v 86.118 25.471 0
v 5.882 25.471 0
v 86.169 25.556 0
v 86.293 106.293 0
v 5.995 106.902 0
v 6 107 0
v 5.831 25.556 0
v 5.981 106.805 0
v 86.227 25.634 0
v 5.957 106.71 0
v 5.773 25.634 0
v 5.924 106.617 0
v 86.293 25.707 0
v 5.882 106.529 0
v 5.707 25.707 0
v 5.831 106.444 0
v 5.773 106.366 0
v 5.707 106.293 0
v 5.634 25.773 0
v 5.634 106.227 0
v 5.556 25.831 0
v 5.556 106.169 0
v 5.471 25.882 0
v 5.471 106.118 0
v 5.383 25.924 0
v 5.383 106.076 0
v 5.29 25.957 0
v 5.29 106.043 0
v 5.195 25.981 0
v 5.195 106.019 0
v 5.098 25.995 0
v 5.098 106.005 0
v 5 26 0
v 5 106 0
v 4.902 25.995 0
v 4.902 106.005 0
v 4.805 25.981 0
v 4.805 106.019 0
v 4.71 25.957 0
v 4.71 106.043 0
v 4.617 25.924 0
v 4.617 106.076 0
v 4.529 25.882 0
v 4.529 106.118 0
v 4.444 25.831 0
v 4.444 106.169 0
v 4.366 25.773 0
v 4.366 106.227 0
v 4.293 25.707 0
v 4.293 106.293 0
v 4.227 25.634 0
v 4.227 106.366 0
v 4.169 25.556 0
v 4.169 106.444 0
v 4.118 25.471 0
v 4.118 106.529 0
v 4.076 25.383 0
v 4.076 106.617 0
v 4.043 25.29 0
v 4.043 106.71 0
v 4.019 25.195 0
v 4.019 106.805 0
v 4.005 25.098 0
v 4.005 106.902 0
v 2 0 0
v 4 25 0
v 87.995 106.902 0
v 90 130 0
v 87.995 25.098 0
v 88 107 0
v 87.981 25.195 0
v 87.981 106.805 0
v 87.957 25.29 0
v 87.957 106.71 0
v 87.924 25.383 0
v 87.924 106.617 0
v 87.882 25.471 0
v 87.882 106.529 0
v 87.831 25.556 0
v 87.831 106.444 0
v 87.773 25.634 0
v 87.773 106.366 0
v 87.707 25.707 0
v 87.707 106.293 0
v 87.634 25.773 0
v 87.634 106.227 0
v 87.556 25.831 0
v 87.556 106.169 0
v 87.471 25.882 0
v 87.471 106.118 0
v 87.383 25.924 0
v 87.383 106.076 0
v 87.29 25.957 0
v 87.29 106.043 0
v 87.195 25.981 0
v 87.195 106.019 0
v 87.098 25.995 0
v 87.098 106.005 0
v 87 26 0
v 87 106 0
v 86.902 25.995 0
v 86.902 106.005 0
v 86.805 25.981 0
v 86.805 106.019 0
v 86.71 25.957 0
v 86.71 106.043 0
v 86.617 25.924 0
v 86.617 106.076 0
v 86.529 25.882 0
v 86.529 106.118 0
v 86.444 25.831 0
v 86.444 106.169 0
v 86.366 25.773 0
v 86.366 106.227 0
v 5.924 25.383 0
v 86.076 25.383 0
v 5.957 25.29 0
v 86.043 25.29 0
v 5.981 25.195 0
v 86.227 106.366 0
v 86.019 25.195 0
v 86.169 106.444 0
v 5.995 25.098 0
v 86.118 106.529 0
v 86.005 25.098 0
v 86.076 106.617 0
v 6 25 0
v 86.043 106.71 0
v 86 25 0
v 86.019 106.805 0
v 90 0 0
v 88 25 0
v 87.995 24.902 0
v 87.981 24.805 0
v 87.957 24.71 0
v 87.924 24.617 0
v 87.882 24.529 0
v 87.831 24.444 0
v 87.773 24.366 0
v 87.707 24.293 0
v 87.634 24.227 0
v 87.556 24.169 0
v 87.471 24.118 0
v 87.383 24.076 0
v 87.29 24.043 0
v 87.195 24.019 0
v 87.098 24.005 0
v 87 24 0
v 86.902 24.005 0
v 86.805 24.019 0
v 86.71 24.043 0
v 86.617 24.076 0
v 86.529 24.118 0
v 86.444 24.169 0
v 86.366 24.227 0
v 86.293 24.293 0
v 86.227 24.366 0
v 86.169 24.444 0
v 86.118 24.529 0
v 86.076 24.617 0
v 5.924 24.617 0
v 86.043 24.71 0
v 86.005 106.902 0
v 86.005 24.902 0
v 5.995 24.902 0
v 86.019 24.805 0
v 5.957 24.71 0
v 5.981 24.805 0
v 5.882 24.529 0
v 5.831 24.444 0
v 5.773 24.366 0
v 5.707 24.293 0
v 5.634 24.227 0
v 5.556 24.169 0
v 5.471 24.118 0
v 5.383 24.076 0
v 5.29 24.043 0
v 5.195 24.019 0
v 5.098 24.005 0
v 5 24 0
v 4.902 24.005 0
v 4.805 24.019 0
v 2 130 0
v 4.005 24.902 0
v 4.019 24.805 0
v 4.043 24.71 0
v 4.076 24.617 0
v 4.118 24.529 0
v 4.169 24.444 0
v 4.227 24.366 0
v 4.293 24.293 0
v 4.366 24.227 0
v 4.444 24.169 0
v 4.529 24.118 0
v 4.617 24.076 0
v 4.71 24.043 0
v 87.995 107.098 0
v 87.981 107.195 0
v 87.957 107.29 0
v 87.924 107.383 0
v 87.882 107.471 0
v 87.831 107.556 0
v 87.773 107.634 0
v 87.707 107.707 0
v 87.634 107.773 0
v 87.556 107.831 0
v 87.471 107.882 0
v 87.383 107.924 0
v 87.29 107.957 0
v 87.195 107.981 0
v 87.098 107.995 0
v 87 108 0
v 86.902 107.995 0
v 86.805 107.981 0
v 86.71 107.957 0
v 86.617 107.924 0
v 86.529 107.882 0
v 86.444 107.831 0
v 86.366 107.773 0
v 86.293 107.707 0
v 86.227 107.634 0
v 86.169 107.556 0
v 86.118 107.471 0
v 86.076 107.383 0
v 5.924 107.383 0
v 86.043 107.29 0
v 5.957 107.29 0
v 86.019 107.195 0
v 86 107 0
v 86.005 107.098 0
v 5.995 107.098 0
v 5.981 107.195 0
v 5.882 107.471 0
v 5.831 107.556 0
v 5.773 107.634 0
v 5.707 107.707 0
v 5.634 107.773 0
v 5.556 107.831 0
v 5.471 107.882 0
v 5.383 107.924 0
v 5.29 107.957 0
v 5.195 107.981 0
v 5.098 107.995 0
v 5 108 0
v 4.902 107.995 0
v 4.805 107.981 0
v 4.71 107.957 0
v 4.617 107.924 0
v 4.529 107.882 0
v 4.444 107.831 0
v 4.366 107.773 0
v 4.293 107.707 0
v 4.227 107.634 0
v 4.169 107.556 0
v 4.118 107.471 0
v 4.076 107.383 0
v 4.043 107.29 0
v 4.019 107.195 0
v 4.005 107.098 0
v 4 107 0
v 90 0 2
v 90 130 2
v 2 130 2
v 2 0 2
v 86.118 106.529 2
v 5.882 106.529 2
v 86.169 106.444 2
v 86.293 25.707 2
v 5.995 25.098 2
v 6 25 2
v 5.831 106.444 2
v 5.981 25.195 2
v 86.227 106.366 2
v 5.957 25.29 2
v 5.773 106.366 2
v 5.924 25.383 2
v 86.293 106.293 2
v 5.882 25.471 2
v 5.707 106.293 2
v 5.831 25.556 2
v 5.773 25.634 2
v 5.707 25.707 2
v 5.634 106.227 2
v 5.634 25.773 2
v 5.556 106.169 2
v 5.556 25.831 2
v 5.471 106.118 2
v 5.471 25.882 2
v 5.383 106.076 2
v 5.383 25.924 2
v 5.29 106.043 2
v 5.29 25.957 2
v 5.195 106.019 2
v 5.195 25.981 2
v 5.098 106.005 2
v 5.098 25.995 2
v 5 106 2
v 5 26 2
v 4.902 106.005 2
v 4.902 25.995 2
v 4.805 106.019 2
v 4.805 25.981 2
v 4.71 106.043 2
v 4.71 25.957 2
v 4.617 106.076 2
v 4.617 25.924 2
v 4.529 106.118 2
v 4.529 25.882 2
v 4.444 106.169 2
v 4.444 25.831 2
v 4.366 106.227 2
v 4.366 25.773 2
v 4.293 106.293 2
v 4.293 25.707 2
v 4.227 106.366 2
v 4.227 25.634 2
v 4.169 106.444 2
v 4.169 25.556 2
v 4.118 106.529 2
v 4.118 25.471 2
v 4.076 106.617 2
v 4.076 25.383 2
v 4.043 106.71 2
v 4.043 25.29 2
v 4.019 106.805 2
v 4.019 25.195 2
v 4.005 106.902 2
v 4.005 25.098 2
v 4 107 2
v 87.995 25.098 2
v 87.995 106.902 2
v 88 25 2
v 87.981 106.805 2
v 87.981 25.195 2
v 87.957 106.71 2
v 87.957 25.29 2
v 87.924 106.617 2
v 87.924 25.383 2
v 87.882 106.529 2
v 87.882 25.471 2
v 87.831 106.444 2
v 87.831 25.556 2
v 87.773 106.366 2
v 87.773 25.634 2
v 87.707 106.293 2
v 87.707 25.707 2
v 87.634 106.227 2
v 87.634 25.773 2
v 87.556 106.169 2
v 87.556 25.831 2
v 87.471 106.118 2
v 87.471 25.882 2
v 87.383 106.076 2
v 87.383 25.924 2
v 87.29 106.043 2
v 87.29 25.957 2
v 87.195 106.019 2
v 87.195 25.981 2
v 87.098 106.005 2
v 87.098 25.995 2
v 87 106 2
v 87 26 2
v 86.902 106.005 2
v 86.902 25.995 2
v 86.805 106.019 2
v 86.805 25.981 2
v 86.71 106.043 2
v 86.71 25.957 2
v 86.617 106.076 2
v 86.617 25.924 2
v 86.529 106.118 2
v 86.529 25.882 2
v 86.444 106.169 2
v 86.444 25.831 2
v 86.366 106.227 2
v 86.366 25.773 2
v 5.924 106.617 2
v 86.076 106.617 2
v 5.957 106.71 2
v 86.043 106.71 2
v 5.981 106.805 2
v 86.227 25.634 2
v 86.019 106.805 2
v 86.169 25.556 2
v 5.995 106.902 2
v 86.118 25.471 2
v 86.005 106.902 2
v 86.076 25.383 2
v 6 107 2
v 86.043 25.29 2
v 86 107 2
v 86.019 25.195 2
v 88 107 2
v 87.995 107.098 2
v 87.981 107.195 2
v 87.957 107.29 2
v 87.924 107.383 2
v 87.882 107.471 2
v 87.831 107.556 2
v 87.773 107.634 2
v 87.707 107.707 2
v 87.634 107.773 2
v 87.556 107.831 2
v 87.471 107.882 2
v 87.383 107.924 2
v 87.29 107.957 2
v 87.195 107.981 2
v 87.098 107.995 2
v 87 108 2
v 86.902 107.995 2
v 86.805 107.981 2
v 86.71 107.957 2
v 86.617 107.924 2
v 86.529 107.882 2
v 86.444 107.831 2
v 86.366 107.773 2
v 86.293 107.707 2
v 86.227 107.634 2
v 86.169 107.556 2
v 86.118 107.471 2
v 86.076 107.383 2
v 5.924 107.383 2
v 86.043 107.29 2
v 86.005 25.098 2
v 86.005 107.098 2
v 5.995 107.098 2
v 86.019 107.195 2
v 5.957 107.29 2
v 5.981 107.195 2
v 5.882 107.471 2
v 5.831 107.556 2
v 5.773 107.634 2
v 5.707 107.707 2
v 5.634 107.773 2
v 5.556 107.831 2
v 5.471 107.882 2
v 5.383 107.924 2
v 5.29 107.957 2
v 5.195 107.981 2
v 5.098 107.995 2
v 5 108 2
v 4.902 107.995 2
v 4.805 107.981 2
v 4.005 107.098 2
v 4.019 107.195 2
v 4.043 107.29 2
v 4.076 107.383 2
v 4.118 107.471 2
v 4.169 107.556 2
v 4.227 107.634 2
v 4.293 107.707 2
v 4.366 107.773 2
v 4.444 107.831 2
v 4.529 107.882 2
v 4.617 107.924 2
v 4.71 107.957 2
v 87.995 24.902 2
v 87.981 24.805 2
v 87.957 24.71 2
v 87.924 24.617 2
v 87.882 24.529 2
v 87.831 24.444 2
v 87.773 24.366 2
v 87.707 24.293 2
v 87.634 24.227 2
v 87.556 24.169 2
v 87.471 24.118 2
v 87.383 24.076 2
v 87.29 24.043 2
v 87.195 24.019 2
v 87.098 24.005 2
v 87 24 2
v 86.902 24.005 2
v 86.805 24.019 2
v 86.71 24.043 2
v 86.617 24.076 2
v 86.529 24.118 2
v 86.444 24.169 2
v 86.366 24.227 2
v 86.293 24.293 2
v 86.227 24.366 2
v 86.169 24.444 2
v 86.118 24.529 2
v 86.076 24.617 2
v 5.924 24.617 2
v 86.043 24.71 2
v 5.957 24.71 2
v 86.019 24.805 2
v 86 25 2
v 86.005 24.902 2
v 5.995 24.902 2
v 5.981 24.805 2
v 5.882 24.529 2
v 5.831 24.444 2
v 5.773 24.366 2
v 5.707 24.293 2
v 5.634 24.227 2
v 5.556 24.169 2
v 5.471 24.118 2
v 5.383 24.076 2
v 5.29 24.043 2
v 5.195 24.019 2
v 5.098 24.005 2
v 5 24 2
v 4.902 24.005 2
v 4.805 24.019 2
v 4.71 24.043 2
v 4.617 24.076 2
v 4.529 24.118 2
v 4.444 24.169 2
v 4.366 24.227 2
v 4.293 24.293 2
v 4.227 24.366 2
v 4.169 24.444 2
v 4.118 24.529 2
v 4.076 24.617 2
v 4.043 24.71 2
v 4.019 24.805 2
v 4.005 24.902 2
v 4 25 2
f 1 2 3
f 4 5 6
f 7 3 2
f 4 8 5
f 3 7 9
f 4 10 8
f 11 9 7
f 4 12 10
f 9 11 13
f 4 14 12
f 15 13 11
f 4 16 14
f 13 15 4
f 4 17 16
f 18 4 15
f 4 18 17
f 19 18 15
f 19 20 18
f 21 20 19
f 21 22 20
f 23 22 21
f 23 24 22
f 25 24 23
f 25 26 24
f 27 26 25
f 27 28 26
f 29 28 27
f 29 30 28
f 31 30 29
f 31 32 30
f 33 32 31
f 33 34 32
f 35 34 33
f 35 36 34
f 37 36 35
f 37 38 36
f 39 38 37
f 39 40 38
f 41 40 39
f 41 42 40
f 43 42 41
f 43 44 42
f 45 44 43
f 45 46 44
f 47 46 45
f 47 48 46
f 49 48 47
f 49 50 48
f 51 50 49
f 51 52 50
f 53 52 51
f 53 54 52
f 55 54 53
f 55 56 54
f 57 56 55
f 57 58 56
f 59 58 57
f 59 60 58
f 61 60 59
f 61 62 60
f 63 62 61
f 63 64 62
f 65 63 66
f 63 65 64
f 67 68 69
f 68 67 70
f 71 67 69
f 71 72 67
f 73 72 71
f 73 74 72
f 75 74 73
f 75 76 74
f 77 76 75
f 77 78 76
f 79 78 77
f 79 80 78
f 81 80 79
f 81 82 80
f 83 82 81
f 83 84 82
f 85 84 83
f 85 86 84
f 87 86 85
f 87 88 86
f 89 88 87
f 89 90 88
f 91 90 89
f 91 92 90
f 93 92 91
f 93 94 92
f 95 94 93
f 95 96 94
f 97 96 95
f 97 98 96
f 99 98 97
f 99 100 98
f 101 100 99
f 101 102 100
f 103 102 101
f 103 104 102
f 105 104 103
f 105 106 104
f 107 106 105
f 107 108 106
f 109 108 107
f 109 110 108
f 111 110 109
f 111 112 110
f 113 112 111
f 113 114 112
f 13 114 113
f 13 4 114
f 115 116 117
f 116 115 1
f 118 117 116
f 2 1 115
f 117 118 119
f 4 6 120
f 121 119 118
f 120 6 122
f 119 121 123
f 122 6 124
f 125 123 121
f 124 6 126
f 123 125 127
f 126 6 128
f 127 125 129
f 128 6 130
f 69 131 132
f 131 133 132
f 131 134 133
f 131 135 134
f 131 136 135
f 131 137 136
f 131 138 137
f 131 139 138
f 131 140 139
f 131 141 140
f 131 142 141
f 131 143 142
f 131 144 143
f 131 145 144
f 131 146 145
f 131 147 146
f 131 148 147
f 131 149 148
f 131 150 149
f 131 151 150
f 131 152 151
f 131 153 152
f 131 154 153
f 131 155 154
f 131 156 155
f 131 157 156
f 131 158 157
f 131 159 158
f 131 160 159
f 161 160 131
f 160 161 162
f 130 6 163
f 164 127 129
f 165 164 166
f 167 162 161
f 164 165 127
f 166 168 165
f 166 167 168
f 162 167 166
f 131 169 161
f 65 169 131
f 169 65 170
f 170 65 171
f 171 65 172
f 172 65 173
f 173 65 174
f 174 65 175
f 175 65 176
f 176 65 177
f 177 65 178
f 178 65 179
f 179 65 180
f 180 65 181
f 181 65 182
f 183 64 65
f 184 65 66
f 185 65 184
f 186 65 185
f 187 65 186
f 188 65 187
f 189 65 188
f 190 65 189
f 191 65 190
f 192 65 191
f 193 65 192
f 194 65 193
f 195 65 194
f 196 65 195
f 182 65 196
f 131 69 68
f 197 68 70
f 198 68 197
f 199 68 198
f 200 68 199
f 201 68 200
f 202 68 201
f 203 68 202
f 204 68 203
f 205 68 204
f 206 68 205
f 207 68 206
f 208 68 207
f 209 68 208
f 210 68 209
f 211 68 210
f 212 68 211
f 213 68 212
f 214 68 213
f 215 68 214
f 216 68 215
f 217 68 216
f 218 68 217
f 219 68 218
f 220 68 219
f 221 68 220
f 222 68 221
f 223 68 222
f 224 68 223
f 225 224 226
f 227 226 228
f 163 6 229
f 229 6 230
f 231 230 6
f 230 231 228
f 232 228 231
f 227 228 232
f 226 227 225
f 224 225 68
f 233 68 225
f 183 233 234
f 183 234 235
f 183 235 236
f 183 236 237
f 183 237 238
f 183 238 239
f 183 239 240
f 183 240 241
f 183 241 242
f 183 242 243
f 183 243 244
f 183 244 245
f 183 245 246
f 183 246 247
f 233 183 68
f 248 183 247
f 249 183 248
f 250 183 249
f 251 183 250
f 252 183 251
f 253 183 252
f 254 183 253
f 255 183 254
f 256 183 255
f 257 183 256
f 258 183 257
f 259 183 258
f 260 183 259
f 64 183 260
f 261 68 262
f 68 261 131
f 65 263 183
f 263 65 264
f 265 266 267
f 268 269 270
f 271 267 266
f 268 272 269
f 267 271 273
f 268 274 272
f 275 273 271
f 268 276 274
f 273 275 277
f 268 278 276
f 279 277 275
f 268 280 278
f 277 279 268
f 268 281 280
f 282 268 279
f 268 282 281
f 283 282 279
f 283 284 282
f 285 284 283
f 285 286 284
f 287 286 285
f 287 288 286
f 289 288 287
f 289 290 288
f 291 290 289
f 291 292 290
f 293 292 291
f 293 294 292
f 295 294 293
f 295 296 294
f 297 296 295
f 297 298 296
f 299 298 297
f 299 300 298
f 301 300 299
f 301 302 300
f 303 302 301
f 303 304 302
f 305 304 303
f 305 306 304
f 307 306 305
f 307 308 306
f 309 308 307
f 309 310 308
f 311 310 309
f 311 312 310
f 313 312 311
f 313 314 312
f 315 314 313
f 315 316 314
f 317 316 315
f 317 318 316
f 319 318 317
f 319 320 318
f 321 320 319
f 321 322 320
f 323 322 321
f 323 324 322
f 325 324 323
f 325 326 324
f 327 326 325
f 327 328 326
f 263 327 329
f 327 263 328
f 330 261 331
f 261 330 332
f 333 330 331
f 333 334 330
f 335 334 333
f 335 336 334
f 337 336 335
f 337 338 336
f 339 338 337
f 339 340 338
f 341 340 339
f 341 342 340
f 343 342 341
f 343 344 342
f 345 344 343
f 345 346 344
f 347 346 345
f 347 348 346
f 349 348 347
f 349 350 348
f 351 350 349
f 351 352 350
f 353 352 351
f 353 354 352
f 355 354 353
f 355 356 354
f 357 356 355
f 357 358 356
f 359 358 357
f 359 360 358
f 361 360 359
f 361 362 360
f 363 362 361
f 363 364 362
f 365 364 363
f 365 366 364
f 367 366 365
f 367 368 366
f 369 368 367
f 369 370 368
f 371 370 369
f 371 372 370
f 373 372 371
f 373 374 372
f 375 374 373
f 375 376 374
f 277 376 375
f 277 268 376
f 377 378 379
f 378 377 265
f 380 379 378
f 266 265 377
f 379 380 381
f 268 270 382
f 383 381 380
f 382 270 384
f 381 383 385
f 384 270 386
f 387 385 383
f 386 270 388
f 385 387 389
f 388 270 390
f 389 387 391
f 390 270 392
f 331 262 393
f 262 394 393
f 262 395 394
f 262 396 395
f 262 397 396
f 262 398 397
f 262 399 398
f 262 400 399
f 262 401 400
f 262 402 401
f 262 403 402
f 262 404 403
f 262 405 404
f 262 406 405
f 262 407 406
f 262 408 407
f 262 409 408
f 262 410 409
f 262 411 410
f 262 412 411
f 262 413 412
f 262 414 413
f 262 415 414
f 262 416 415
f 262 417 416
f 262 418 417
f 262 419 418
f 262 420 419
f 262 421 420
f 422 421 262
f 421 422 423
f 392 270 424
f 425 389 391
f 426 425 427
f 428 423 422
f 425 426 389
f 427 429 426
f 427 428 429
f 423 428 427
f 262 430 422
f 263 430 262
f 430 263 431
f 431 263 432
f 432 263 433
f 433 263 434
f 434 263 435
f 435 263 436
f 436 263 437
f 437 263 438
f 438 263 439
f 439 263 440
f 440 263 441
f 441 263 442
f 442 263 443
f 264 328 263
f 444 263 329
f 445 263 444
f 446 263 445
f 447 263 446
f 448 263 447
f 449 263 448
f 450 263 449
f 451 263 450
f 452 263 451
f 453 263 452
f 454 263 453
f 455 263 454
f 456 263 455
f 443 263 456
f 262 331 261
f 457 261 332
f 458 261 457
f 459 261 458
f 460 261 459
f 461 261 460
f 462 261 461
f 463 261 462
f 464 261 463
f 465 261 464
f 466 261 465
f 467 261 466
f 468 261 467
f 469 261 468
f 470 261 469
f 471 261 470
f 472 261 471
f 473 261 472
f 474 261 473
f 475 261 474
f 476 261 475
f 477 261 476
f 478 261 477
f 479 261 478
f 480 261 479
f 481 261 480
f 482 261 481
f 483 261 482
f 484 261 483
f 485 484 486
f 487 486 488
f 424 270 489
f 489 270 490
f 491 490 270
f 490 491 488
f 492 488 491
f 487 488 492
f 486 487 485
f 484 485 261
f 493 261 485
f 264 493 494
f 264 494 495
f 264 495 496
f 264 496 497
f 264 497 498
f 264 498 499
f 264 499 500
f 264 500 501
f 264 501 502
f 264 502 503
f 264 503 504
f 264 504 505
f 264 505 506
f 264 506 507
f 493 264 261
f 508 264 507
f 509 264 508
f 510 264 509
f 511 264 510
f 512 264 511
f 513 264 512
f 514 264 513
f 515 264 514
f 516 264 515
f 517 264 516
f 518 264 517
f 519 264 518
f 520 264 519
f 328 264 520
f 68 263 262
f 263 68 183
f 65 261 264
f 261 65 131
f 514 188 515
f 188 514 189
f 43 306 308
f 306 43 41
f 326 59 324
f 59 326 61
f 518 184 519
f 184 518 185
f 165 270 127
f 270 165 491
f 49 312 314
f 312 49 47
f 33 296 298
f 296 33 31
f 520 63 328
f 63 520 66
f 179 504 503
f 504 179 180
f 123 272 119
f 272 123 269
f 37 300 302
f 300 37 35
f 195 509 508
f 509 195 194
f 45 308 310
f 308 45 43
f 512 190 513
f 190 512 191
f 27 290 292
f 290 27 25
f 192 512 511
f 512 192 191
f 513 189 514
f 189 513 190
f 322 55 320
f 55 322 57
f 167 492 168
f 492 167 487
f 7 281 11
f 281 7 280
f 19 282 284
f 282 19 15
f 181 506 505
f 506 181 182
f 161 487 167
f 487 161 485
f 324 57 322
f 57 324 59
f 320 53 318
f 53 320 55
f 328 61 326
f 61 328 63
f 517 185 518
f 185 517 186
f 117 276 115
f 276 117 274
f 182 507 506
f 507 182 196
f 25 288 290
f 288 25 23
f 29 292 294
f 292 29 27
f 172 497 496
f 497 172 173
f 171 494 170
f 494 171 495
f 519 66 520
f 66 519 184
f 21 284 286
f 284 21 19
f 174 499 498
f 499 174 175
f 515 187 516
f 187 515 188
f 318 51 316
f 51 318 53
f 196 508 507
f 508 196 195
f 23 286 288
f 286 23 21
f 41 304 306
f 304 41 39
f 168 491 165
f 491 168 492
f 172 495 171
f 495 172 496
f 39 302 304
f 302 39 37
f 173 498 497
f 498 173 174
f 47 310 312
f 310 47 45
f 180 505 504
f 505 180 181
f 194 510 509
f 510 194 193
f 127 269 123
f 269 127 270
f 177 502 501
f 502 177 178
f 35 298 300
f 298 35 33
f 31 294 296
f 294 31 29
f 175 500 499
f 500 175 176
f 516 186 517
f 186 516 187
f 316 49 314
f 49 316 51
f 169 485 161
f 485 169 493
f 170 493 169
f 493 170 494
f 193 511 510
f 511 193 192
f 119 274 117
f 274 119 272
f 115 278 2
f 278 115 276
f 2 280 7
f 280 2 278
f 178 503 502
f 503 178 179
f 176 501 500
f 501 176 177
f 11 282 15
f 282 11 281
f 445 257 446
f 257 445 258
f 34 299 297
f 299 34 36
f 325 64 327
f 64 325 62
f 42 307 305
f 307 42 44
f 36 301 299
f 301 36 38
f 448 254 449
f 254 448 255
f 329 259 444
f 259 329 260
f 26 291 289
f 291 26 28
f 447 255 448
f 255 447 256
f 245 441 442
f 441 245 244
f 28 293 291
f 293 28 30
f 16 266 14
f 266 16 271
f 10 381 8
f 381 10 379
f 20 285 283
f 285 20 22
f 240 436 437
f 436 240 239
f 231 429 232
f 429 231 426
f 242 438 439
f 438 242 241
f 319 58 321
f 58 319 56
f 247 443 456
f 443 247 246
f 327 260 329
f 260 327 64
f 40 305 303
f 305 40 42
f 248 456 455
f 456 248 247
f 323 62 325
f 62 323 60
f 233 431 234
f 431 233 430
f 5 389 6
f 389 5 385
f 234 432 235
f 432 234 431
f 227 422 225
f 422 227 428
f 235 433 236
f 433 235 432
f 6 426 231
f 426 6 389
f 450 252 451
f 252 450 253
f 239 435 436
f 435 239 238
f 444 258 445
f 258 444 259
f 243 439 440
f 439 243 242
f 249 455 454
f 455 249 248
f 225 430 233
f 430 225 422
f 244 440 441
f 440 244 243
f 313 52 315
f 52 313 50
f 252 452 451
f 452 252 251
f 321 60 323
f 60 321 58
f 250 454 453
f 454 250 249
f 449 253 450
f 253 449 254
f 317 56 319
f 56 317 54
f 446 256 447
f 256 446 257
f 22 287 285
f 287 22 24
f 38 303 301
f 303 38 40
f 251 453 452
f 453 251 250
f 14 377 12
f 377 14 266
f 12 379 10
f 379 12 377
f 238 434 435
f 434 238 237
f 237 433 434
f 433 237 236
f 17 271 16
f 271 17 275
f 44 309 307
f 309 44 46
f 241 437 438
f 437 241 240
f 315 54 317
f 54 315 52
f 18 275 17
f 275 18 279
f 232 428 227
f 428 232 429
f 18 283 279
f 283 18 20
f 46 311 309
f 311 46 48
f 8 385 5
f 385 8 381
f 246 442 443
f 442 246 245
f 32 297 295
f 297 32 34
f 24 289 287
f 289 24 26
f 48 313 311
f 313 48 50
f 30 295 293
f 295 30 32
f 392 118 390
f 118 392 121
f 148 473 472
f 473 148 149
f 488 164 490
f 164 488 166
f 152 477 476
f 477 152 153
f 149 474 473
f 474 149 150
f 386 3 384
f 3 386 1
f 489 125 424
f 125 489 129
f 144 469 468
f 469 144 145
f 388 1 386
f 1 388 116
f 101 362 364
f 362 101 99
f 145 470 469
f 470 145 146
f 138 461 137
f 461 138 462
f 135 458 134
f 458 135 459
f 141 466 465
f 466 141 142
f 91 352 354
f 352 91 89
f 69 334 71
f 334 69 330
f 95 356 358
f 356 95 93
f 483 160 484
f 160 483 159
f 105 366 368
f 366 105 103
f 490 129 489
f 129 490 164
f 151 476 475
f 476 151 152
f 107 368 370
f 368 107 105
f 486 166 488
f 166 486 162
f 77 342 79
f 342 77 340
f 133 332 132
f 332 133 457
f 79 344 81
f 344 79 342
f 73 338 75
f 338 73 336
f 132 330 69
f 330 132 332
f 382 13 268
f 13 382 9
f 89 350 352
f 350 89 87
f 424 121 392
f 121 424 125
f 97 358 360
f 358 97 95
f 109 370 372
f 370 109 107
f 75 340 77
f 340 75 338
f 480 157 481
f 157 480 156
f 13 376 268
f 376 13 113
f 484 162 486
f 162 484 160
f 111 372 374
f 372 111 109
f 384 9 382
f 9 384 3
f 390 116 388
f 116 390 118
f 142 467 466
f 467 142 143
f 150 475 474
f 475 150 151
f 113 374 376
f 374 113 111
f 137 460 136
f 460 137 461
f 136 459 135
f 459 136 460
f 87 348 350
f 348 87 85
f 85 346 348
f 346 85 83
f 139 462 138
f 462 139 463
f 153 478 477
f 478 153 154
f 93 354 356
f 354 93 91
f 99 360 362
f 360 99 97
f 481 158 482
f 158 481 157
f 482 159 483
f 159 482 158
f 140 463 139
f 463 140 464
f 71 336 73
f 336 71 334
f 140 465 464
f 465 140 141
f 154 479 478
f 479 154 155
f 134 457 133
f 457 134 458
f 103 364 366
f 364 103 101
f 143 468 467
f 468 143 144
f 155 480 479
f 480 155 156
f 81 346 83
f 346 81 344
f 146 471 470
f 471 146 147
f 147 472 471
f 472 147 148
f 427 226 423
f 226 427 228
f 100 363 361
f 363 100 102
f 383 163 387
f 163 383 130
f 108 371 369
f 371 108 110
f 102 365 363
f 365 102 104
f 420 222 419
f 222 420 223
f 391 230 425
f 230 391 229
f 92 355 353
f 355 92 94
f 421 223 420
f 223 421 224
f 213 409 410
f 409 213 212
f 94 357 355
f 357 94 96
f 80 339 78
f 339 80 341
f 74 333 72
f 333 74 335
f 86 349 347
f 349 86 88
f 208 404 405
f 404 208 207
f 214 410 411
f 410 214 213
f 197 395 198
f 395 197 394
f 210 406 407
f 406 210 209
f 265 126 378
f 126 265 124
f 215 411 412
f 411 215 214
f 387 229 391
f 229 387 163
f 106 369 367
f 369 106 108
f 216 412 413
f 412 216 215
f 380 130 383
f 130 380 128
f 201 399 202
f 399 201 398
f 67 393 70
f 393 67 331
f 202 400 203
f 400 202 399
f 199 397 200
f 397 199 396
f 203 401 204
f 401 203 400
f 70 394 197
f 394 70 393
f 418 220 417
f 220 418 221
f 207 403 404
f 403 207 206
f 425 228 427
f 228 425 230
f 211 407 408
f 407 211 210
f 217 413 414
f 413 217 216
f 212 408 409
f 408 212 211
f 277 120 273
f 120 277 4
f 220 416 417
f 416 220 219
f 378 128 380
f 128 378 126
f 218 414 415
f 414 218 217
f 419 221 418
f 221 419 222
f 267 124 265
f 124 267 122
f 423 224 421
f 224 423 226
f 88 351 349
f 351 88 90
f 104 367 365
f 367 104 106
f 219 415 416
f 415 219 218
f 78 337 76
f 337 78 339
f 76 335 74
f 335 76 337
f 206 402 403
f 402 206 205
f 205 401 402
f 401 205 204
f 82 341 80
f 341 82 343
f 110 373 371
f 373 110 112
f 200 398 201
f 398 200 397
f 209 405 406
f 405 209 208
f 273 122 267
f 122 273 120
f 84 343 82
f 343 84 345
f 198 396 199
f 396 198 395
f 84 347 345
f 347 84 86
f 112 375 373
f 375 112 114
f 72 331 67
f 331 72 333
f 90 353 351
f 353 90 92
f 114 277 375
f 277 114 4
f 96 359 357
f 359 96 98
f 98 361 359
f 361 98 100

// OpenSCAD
$fn = 64;
//Main back wall

translate([0,0,106])
rotate([90,90,90])
union(){
translate([84+20,0,2]){
difference(){
cube([2,130,88]);
rotate([0,90,0])
translate([-3,25,1])
#cylinder(d=2,h=4,center=true);

rotate([0,90,0])
translate([-3,107,1])
#cylinder(d=2,h=4,center=true);

rotate([0,90,0])
translate([-85,25,1])
#cylinder(d=2,h=4,center=true);

rotate([0,90,0])
translate([-85,107,1])
#cylinder(d=2,h=4,center=true);
}
}
}

//Main Back wall ends.
